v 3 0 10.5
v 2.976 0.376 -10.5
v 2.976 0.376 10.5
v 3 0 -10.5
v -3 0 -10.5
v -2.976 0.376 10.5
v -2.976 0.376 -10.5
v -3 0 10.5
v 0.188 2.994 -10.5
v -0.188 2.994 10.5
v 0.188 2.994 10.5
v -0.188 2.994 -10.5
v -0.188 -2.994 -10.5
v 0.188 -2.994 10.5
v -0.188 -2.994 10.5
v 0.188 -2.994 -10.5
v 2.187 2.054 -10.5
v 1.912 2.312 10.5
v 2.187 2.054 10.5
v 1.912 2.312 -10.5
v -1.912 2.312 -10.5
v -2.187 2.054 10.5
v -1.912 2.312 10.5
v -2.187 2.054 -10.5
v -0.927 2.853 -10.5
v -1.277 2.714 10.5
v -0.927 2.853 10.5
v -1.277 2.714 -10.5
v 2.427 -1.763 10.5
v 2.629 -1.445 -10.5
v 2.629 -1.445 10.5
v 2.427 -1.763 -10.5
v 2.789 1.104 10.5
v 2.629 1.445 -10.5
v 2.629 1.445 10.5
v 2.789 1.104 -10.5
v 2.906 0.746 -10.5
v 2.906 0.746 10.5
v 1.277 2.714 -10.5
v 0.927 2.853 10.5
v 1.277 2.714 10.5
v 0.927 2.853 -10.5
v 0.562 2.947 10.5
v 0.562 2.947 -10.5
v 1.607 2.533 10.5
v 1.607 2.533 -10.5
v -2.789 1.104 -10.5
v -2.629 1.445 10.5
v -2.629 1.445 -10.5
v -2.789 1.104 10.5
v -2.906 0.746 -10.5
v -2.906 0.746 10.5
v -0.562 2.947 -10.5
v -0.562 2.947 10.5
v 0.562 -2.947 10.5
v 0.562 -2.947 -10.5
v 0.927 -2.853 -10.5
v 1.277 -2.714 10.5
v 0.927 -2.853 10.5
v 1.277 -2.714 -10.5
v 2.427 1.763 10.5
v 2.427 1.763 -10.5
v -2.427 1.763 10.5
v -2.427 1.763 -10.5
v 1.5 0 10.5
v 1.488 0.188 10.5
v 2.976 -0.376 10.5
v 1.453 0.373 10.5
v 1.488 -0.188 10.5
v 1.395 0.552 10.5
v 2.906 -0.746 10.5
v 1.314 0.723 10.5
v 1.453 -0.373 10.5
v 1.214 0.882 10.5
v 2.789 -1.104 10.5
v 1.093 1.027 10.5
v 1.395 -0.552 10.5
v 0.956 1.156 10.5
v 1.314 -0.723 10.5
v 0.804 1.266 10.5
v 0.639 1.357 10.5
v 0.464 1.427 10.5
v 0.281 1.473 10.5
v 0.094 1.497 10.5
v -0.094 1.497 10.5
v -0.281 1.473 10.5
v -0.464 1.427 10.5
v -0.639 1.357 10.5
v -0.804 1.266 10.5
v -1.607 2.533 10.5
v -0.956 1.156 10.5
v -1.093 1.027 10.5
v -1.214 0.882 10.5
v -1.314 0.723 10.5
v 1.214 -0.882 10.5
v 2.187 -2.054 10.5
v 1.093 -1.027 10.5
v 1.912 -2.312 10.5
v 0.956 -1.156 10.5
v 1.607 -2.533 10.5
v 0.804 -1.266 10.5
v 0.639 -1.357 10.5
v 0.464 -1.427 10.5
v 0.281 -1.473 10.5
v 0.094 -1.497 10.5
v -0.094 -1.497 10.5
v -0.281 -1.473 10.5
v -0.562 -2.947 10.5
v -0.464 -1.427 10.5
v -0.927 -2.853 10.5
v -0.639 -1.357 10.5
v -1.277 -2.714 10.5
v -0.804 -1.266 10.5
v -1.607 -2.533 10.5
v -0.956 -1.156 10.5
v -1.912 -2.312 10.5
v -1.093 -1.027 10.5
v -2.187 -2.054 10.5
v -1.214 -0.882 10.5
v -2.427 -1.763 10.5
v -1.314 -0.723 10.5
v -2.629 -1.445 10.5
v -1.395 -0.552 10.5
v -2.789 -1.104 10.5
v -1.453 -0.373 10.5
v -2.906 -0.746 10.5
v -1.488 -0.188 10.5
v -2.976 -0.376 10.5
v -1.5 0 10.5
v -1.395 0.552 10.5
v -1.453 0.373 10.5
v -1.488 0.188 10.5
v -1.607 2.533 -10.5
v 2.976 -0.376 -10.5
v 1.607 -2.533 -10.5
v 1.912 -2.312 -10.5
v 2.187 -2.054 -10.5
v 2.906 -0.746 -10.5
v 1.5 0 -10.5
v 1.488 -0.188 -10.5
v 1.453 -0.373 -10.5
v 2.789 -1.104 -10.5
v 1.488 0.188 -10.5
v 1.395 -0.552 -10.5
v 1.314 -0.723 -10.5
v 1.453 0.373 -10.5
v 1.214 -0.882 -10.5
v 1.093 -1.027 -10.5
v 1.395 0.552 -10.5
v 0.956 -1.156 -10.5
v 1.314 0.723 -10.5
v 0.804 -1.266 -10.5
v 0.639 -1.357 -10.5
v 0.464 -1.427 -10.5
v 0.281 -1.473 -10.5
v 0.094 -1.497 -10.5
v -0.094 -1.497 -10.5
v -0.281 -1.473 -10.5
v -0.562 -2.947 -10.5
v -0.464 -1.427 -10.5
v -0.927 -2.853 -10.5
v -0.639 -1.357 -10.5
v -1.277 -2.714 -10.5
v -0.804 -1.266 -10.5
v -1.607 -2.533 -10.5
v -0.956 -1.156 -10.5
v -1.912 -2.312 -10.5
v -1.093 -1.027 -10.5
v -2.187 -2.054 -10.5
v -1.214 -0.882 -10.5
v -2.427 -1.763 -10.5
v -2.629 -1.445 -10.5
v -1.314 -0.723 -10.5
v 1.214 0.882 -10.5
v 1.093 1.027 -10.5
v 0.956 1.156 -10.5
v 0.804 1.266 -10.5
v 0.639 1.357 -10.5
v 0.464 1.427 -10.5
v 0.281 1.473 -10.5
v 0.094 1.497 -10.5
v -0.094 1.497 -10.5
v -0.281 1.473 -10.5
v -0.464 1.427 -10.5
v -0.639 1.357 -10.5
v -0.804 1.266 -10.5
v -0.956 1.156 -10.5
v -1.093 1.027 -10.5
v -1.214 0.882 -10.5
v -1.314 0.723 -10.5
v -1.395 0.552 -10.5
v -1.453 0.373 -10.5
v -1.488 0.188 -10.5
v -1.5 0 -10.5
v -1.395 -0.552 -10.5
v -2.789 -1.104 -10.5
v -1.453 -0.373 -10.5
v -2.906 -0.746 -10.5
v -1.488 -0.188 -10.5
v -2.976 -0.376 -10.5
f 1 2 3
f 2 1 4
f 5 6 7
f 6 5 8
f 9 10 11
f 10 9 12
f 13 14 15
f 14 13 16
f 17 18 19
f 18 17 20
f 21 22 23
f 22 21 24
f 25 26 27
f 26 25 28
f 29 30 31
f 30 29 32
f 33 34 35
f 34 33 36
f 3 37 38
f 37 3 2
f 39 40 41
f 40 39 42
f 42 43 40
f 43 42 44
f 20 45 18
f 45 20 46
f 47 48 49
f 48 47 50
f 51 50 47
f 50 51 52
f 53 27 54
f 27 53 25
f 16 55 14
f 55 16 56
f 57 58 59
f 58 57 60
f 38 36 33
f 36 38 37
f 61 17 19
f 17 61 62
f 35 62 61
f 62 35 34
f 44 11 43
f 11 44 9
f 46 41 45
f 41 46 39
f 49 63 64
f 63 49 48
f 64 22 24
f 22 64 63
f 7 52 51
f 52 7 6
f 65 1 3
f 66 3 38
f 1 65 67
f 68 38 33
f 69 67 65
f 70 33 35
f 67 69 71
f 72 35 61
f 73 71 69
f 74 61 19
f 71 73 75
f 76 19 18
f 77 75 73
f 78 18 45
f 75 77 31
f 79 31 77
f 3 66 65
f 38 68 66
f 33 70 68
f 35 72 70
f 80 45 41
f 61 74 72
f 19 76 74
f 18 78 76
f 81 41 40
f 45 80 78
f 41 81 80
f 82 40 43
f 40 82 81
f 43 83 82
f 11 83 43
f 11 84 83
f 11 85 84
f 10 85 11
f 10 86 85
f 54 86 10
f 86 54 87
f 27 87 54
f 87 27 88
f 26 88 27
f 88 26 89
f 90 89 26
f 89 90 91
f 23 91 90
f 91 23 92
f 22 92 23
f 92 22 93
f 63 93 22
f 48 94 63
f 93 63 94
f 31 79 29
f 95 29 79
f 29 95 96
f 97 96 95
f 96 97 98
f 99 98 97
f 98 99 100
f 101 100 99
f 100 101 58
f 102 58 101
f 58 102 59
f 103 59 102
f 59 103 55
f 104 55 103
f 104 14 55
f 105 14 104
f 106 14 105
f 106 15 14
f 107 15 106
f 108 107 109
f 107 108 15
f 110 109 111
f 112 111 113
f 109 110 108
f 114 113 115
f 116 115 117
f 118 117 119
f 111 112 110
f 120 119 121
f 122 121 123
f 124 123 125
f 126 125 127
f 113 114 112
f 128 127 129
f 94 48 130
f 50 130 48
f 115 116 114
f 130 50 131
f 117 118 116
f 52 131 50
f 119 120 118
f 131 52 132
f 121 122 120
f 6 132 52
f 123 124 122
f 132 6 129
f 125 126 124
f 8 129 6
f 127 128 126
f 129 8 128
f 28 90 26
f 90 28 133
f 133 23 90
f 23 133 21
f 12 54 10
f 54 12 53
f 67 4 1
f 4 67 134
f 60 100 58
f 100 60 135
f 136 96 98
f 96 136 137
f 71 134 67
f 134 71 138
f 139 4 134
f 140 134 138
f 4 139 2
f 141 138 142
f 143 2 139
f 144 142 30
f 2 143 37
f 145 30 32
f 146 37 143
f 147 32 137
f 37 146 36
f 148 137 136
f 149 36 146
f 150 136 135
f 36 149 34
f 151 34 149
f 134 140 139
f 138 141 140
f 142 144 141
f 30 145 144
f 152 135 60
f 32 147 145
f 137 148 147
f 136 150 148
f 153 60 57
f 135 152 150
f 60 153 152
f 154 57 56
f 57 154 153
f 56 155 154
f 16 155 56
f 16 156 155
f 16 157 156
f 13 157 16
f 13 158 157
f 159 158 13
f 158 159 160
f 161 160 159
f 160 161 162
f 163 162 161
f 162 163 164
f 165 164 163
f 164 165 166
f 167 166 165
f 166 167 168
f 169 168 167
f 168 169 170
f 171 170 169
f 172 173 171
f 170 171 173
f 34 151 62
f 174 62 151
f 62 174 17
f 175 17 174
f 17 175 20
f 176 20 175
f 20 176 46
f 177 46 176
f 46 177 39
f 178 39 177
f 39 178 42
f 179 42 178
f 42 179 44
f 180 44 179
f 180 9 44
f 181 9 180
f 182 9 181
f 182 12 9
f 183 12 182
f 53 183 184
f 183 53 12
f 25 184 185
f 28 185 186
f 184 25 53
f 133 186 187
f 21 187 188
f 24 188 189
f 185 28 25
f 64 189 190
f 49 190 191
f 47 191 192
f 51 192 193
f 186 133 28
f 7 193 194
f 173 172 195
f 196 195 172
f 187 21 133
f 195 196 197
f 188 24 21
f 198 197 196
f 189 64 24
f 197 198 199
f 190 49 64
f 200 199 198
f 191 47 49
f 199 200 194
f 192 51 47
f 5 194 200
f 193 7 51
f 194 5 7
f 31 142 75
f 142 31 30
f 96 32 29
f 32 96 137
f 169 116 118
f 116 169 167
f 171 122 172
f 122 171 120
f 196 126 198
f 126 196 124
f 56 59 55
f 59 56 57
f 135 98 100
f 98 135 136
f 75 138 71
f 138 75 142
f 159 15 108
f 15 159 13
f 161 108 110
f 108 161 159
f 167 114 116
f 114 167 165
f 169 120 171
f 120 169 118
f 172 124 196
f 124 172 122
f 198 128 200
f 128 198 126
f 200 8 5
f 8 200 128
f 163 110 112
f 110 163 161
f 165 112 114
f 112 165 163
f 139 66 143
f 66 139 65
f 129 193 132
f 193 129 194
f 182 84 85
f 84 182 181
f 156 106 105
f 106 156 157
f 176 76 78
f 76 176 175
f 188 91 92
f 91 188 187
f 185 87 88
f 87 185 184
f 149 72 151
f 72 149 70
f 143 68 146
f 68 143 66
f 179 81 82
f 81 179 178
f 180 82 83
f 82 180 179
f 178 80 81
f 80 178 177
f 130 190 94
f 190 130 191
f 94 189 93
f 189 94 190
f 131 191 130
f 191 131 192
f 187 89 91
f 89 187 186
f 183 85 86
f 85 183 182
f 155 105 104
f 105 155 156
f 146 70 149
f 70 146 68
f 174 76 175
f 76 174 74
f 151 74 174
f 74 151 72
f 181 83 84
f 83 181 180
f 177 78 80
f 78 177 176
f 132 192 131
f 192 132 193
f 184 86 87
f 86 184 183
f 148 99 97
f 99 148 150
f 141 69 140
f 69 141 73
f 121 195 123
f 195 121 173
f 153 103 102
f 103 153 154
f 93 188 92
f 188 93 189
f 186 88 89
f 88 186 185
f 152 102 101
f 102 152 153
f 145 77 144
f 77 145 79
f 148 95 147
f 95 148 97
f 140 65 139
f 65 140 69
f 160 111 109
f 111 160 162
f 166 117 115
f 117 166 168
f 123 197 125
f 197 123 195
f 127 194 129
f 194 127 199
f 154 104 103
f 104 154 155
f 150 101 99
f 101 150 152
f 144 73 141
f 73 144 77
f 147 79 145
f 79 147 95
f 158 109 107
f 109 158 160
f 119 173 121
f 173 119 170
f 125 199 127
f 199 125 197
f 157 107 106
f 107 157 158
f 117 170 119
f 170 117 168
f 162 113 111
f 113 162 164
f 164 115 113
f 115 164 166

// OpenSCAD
$fn = 50;


difference() {
	union() {
		translate(v = [0, 0, -10.5000000000]) {
			cylinder(h = 21, r = 3.0000000000);
		}
	}
	union() {
		translate(v = [0, 0, -100.0000000000]) {
			cylinder(h = 200, r = 1.5000000000);
		}
	}
}
